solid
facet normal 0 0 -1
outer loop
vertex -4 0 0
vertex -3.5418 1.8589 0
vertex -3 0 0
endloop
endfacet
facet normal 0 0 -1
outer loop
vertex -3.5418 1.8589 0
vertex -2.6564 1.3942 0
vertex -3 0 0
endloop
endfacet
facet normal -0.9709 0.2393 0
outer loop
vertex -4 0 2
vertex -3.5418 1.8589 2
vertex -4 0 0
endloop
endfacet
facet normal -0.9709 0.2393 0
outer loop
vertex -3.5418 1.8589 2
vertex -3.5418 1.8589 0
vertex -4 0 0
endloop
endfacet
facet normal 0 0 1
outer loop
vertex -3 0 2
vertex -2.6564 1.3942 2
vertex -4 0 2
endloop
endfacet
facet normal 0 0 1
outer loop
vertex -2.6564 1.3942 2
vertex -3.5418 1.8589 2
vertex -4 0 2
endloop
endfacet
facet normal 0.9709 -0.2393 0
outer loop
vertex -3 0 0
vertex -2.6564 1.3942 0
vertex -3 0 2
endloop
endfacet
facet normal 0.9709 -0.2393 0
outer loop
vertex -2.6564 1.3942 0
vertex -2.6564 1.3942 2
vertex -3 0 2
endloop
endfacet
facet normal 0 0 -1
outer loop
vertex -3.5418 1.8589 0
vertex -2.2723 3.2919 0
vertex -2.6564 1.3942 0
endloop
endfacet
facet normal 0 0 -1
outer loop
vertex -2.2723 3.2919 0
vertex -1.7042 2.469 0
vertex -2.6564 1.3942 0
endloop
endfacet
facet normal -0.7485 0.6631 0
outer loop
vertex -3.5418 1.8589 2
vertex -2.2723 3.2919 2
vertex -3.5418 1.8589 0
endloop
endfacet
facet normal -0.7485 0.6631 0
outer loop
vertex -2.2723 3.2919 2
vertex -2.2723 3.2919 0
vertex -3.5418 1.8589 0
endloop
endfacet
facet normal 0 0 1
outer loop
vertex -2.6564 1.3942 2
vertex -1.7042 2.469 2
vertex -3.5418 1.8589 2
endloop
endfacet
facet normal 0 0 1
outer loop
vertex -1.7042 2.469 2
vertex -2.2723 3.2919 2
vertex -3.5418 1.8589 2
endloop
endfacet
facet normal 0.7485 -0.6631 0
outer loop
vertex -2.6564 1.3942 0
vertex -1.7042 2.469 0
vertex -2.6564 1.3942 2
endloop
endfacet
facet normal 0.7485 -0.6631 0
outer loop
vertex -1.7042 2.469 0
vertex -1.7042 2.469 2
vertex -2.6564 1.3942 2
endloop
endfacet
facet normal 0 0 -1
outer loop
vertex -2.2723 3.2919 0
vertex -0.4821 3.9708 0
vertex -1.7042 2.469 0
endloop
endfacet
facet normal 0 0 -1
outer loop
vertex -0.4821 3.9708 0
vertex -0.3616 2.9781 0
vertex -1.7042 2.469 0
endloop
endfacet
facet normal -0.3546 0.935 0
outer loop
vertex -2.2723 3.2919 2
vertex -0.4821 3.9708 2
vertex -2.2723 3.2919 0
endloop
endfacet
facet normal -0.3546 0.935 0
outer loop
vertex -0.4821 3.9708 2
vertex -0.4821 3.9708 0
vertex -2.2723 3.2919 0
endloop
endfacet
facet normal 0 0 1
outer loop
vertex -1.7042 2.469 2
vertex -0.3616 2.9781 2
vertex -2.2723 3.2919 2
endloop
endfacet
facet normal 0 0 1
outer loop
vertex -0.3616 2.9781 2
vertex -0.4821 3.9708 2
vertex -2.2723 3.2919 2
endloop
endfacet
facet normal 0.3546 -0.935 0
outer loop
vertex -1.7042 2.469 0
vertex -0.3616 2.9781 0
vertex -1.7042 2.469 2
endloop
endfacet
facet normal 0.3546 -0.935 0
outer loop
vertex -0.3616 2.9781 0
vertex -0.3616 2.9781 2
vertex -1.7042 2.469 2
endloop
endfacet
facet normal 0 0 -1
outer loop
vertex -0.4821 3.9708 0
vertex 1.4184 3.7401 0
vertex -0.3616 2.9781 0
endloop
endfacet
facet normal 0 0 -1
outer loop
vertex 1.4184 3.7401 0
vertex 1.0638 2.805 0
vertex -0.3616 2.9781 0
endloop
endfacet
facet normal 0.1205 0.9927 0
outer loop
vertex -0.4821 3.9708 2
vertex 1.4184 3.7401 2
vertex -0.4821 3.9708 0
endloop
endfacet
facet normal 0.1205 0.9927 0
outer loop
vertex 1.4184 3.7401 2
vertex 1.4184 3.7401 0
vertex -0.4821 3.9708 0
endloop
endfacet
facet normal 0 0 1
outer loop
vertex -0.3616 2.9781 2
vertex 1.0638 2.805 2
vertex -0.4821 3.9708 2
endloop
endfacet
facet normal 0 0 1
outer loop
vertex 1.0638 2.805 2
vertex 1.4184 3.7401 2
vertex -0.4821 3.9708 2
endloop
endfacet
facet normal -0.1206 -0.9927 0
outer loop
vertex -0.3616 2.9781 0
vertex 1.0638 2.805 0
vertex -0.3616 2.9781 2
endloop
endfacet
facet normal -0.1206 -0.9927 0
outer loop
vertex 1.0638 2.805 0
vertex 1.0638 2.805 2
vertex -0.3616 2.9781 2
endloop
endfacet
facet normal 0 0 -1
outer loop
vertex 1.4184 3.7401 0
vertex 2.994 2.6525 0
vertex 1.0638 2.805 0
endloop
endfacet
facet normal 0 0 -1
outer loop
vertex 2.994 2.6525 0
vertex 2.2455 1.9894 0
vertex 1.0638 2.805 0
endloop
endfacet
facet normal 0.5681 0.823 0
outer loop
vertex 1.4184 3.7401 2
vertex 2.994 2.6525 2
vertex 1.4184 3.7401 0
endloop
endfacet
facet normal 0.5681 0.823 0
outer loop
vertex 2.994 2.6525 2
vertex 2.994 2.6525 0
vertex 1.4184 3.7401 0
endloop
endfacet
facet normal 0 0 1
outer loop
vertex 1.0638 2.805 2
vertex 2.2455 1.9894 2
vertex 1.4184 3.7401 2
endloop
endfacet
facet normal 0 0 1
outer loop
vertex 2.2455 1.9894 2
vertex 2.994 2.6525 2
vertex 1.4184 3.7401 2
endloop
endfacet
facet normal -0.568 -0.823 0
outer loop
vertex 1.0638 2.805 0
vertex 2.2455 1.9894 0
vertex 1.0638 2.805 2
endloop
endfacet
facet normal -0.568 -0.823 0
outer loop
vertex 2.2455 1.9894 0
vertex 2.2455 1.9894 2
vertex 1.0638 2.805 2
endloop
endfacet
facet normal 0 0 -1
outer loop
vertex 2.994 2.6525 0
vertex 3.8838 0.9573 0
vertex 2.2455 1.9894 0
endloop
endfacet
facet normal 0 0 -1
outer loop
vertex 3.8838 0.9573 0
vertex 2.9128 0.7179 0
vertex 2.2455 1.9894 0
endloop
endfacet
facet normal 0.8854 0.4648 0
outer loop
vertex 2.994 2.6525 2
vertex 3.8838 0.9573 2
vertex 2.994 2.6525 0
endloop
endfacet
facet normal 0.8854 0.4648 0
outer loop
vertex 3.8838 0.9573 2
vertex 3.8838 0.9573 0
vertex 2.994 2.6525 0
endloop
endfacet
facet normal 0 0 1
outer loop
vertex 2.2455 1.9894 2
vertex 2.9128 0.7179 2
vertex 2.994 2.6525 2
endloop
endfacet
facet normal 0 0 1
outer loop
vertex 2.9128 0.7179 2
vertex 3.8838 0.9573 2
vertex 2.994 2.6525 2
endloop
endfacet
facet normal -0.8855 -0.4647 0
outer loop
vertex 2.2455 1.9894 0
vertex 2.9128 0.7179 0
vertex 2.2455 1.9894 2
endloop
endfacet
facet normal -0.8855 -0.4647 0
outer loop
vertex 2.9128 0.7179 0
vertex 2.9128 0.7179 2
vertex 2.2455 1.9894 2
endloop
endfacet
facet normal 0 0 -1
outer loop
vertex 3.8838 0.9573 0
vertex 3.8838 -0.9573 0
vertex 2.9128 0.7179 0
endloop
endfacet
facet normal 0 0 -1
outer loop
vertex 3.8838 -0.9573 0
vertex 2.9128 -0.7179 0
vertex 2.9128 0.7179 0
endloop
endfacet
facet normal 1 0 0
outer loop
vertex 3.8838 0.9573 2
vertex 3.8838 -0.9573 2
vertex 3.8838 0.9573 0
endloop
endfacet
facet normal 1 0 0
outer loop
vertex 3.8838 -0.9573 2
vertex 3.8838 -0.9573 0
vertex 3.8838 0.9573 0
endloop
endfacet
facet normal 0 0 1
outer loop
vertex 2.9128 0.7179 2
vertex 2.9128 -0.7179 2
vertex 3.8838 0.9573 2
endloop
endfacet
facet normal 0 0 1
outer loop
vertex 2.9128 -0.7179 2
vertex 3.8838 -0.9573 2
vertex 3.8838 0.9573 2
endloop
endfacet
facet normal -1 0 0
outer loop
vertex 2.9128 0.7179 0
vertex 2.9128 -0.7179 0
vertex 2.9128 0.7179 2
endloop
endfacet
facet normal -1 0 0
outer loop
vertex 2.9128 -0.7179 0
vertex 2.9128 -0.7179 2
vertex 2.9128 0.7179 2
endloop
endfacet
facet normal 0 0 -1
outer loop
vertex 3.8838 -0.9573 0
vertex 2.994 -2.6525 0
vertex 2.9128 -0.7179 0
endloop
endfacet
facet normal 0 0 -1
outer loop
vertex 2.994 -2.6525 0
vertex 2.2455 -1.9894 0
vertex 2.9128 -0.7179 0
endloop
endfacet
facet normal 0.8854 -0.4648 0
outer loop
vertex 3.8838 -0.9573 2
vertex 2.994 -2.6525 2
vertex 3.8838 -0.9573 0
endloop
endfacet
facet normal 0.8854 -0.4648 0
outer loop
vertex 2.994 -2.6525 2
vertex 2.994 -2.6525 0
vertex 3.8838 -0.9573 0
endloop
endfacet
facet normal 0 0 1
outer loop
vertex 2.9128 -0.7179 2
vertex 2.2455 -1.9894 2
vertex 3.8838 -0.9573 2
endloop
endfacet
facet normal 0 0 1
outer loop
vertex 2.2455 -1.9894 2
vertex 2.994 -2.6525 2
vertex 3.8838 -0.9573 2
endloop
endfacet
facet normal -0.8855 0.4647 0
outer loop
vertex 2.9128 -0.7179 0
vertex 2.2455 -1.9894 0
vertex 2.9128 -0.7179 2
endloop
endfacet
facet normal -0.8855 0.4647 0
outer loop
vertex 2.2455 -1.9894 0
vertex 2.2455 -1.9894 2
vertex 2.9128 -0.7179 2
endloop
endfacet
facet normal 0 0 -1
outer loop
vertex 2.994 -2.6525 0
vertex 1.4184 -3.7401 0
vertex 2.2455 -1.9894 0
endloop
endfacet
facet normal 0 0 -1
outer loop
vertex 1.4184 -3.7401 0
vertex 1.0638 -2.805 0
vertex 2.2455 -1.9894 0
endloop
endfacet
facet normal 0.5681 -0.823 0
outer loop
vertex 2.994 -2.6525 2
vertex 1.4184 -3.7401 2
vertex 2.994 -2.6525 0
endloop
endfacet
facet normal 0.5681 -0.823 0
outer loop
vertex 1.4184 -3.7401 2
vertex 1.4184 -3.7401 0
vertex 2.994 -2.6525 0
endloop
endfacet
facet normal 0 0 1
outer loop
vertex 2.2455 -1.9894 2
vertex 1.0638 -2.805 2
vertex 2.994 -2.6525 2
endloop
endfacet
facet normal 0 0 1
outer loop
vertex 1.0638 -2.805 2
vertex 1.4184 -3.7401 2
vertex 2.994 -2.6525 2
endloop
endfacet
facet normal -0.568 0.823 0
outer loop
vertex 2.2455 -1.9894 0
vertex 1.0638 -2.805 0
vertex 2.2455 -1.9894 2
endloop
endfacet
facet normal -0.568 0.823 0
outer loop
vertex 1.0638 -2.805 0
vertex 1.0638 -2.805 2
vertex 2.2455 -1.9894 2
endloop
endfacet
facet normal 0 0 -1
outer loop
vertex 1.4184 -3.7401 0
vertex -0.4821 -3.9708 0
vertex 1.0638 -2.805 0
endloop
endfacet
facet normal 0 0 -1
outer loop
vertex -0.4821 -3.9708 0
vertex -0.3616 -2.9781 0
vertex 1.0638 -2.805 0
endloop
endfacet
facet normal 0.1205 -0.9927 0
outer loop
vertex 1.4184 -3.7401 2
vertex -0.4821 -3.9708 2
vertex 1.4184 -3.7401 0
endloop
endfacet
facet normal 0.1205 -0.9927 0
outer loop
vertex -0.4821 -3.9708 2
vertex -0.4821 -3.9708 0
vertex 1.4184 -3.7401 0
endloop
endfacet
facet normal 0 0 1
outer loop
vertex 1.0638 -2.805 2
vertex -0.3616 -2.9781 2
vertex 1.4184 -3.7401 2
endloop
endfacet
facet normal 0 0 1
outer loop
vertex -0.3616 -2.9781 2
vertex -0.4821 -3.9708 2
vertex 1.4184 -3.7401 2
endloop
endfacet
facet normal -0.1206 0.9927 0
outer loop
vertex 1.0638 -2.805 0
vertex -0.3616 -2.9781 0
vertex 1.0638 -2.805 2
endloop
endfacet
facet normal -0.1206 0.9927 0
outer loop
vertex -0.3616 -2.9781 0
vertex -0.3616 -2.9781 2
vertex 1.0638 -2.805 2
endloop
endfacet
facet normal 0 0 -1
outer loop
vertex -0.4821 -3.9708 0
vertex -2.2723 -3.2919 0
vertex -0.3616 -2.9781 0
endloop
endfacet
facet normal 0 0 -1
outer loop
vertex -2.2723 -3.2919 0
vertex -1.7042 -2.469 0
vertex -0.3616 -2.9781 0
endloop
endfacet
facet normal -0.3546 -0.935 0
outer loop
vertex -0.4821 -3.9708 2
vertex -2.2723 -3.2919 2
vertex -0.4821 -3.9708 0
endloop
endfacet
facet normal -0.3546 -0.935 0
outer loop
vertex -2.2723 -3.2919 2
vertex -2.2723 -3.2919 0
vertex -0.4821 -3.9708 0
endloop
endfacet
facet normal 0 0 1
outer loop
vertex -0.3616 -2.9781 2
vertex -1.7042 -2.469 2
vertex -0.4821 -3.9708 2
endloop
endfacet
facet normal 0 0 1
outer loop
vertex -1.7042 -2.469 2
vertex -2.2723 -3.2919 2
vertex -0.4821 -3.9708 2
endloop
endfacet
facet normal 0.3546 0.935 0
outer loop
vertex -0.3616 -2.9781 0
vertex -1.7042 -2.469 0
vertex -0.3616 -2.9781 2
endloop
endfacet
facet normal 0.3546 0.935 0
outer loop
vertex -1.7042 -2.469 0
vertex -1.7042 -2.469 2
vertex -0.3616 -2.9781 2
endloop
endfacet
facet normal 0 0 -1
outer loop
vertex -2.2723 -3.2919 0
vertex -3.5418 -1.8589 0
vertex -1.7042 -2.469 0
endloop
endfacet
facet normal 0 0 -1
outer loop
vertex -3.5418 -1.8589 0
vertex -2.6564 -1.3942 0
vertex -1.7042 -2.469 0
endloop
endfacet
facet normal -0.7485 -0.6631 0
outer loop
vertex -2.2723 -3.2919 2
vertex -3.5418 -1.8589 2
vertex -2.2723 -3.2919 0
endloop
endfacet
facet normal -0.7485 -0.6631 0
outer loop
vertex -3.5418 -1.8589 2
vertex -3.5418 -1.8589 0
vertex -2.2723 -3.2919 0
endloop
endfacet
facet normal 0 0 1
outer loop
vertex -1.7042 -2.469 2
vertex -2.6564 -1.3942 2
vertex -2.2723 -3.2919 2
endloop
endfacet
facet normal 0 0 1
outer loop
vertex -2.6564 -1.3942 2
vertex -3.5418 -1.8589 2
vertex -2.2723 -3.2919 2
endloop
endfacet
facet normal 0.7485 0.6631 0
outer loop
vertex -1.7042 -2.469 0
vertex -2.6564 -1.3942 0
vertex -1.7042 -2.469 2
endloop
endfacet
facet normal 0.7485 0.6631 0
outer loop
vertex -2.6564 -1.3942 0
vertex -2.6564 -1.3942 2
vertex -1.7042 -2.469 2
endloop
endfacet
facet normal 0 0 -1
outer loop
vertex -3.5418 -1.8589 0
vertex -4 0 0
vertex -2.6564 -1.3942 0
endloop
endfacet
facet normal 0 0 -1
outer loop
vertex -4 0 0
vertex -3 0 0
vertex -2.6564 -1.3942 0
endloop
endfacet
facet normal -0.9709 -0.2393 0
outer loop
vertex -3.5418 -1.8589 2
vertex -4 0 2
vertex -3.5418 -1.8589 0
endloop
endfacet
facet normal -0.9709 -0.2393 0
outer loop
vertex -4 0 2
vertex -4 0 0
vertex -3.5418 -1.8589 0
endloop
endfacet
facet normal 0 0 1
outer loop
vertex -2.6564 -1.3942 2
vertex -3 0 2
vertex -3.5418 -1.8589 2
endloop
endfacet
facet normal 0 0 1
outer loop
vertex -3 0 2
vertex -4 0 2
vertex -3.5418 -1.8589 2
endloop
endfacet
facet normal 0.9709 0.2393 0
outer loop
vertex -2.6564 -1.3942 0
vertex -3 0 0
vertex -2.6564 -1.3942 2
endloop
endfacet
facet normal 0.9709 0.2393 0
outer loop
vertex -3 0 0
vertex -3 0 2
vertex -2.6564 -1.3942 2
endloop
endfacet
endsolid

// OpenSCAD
rotate_extrude(angle=360) translate([3,0,0]) square([1,2]);
//translate([3,0,0]) cube([2,4,2], center=true);
